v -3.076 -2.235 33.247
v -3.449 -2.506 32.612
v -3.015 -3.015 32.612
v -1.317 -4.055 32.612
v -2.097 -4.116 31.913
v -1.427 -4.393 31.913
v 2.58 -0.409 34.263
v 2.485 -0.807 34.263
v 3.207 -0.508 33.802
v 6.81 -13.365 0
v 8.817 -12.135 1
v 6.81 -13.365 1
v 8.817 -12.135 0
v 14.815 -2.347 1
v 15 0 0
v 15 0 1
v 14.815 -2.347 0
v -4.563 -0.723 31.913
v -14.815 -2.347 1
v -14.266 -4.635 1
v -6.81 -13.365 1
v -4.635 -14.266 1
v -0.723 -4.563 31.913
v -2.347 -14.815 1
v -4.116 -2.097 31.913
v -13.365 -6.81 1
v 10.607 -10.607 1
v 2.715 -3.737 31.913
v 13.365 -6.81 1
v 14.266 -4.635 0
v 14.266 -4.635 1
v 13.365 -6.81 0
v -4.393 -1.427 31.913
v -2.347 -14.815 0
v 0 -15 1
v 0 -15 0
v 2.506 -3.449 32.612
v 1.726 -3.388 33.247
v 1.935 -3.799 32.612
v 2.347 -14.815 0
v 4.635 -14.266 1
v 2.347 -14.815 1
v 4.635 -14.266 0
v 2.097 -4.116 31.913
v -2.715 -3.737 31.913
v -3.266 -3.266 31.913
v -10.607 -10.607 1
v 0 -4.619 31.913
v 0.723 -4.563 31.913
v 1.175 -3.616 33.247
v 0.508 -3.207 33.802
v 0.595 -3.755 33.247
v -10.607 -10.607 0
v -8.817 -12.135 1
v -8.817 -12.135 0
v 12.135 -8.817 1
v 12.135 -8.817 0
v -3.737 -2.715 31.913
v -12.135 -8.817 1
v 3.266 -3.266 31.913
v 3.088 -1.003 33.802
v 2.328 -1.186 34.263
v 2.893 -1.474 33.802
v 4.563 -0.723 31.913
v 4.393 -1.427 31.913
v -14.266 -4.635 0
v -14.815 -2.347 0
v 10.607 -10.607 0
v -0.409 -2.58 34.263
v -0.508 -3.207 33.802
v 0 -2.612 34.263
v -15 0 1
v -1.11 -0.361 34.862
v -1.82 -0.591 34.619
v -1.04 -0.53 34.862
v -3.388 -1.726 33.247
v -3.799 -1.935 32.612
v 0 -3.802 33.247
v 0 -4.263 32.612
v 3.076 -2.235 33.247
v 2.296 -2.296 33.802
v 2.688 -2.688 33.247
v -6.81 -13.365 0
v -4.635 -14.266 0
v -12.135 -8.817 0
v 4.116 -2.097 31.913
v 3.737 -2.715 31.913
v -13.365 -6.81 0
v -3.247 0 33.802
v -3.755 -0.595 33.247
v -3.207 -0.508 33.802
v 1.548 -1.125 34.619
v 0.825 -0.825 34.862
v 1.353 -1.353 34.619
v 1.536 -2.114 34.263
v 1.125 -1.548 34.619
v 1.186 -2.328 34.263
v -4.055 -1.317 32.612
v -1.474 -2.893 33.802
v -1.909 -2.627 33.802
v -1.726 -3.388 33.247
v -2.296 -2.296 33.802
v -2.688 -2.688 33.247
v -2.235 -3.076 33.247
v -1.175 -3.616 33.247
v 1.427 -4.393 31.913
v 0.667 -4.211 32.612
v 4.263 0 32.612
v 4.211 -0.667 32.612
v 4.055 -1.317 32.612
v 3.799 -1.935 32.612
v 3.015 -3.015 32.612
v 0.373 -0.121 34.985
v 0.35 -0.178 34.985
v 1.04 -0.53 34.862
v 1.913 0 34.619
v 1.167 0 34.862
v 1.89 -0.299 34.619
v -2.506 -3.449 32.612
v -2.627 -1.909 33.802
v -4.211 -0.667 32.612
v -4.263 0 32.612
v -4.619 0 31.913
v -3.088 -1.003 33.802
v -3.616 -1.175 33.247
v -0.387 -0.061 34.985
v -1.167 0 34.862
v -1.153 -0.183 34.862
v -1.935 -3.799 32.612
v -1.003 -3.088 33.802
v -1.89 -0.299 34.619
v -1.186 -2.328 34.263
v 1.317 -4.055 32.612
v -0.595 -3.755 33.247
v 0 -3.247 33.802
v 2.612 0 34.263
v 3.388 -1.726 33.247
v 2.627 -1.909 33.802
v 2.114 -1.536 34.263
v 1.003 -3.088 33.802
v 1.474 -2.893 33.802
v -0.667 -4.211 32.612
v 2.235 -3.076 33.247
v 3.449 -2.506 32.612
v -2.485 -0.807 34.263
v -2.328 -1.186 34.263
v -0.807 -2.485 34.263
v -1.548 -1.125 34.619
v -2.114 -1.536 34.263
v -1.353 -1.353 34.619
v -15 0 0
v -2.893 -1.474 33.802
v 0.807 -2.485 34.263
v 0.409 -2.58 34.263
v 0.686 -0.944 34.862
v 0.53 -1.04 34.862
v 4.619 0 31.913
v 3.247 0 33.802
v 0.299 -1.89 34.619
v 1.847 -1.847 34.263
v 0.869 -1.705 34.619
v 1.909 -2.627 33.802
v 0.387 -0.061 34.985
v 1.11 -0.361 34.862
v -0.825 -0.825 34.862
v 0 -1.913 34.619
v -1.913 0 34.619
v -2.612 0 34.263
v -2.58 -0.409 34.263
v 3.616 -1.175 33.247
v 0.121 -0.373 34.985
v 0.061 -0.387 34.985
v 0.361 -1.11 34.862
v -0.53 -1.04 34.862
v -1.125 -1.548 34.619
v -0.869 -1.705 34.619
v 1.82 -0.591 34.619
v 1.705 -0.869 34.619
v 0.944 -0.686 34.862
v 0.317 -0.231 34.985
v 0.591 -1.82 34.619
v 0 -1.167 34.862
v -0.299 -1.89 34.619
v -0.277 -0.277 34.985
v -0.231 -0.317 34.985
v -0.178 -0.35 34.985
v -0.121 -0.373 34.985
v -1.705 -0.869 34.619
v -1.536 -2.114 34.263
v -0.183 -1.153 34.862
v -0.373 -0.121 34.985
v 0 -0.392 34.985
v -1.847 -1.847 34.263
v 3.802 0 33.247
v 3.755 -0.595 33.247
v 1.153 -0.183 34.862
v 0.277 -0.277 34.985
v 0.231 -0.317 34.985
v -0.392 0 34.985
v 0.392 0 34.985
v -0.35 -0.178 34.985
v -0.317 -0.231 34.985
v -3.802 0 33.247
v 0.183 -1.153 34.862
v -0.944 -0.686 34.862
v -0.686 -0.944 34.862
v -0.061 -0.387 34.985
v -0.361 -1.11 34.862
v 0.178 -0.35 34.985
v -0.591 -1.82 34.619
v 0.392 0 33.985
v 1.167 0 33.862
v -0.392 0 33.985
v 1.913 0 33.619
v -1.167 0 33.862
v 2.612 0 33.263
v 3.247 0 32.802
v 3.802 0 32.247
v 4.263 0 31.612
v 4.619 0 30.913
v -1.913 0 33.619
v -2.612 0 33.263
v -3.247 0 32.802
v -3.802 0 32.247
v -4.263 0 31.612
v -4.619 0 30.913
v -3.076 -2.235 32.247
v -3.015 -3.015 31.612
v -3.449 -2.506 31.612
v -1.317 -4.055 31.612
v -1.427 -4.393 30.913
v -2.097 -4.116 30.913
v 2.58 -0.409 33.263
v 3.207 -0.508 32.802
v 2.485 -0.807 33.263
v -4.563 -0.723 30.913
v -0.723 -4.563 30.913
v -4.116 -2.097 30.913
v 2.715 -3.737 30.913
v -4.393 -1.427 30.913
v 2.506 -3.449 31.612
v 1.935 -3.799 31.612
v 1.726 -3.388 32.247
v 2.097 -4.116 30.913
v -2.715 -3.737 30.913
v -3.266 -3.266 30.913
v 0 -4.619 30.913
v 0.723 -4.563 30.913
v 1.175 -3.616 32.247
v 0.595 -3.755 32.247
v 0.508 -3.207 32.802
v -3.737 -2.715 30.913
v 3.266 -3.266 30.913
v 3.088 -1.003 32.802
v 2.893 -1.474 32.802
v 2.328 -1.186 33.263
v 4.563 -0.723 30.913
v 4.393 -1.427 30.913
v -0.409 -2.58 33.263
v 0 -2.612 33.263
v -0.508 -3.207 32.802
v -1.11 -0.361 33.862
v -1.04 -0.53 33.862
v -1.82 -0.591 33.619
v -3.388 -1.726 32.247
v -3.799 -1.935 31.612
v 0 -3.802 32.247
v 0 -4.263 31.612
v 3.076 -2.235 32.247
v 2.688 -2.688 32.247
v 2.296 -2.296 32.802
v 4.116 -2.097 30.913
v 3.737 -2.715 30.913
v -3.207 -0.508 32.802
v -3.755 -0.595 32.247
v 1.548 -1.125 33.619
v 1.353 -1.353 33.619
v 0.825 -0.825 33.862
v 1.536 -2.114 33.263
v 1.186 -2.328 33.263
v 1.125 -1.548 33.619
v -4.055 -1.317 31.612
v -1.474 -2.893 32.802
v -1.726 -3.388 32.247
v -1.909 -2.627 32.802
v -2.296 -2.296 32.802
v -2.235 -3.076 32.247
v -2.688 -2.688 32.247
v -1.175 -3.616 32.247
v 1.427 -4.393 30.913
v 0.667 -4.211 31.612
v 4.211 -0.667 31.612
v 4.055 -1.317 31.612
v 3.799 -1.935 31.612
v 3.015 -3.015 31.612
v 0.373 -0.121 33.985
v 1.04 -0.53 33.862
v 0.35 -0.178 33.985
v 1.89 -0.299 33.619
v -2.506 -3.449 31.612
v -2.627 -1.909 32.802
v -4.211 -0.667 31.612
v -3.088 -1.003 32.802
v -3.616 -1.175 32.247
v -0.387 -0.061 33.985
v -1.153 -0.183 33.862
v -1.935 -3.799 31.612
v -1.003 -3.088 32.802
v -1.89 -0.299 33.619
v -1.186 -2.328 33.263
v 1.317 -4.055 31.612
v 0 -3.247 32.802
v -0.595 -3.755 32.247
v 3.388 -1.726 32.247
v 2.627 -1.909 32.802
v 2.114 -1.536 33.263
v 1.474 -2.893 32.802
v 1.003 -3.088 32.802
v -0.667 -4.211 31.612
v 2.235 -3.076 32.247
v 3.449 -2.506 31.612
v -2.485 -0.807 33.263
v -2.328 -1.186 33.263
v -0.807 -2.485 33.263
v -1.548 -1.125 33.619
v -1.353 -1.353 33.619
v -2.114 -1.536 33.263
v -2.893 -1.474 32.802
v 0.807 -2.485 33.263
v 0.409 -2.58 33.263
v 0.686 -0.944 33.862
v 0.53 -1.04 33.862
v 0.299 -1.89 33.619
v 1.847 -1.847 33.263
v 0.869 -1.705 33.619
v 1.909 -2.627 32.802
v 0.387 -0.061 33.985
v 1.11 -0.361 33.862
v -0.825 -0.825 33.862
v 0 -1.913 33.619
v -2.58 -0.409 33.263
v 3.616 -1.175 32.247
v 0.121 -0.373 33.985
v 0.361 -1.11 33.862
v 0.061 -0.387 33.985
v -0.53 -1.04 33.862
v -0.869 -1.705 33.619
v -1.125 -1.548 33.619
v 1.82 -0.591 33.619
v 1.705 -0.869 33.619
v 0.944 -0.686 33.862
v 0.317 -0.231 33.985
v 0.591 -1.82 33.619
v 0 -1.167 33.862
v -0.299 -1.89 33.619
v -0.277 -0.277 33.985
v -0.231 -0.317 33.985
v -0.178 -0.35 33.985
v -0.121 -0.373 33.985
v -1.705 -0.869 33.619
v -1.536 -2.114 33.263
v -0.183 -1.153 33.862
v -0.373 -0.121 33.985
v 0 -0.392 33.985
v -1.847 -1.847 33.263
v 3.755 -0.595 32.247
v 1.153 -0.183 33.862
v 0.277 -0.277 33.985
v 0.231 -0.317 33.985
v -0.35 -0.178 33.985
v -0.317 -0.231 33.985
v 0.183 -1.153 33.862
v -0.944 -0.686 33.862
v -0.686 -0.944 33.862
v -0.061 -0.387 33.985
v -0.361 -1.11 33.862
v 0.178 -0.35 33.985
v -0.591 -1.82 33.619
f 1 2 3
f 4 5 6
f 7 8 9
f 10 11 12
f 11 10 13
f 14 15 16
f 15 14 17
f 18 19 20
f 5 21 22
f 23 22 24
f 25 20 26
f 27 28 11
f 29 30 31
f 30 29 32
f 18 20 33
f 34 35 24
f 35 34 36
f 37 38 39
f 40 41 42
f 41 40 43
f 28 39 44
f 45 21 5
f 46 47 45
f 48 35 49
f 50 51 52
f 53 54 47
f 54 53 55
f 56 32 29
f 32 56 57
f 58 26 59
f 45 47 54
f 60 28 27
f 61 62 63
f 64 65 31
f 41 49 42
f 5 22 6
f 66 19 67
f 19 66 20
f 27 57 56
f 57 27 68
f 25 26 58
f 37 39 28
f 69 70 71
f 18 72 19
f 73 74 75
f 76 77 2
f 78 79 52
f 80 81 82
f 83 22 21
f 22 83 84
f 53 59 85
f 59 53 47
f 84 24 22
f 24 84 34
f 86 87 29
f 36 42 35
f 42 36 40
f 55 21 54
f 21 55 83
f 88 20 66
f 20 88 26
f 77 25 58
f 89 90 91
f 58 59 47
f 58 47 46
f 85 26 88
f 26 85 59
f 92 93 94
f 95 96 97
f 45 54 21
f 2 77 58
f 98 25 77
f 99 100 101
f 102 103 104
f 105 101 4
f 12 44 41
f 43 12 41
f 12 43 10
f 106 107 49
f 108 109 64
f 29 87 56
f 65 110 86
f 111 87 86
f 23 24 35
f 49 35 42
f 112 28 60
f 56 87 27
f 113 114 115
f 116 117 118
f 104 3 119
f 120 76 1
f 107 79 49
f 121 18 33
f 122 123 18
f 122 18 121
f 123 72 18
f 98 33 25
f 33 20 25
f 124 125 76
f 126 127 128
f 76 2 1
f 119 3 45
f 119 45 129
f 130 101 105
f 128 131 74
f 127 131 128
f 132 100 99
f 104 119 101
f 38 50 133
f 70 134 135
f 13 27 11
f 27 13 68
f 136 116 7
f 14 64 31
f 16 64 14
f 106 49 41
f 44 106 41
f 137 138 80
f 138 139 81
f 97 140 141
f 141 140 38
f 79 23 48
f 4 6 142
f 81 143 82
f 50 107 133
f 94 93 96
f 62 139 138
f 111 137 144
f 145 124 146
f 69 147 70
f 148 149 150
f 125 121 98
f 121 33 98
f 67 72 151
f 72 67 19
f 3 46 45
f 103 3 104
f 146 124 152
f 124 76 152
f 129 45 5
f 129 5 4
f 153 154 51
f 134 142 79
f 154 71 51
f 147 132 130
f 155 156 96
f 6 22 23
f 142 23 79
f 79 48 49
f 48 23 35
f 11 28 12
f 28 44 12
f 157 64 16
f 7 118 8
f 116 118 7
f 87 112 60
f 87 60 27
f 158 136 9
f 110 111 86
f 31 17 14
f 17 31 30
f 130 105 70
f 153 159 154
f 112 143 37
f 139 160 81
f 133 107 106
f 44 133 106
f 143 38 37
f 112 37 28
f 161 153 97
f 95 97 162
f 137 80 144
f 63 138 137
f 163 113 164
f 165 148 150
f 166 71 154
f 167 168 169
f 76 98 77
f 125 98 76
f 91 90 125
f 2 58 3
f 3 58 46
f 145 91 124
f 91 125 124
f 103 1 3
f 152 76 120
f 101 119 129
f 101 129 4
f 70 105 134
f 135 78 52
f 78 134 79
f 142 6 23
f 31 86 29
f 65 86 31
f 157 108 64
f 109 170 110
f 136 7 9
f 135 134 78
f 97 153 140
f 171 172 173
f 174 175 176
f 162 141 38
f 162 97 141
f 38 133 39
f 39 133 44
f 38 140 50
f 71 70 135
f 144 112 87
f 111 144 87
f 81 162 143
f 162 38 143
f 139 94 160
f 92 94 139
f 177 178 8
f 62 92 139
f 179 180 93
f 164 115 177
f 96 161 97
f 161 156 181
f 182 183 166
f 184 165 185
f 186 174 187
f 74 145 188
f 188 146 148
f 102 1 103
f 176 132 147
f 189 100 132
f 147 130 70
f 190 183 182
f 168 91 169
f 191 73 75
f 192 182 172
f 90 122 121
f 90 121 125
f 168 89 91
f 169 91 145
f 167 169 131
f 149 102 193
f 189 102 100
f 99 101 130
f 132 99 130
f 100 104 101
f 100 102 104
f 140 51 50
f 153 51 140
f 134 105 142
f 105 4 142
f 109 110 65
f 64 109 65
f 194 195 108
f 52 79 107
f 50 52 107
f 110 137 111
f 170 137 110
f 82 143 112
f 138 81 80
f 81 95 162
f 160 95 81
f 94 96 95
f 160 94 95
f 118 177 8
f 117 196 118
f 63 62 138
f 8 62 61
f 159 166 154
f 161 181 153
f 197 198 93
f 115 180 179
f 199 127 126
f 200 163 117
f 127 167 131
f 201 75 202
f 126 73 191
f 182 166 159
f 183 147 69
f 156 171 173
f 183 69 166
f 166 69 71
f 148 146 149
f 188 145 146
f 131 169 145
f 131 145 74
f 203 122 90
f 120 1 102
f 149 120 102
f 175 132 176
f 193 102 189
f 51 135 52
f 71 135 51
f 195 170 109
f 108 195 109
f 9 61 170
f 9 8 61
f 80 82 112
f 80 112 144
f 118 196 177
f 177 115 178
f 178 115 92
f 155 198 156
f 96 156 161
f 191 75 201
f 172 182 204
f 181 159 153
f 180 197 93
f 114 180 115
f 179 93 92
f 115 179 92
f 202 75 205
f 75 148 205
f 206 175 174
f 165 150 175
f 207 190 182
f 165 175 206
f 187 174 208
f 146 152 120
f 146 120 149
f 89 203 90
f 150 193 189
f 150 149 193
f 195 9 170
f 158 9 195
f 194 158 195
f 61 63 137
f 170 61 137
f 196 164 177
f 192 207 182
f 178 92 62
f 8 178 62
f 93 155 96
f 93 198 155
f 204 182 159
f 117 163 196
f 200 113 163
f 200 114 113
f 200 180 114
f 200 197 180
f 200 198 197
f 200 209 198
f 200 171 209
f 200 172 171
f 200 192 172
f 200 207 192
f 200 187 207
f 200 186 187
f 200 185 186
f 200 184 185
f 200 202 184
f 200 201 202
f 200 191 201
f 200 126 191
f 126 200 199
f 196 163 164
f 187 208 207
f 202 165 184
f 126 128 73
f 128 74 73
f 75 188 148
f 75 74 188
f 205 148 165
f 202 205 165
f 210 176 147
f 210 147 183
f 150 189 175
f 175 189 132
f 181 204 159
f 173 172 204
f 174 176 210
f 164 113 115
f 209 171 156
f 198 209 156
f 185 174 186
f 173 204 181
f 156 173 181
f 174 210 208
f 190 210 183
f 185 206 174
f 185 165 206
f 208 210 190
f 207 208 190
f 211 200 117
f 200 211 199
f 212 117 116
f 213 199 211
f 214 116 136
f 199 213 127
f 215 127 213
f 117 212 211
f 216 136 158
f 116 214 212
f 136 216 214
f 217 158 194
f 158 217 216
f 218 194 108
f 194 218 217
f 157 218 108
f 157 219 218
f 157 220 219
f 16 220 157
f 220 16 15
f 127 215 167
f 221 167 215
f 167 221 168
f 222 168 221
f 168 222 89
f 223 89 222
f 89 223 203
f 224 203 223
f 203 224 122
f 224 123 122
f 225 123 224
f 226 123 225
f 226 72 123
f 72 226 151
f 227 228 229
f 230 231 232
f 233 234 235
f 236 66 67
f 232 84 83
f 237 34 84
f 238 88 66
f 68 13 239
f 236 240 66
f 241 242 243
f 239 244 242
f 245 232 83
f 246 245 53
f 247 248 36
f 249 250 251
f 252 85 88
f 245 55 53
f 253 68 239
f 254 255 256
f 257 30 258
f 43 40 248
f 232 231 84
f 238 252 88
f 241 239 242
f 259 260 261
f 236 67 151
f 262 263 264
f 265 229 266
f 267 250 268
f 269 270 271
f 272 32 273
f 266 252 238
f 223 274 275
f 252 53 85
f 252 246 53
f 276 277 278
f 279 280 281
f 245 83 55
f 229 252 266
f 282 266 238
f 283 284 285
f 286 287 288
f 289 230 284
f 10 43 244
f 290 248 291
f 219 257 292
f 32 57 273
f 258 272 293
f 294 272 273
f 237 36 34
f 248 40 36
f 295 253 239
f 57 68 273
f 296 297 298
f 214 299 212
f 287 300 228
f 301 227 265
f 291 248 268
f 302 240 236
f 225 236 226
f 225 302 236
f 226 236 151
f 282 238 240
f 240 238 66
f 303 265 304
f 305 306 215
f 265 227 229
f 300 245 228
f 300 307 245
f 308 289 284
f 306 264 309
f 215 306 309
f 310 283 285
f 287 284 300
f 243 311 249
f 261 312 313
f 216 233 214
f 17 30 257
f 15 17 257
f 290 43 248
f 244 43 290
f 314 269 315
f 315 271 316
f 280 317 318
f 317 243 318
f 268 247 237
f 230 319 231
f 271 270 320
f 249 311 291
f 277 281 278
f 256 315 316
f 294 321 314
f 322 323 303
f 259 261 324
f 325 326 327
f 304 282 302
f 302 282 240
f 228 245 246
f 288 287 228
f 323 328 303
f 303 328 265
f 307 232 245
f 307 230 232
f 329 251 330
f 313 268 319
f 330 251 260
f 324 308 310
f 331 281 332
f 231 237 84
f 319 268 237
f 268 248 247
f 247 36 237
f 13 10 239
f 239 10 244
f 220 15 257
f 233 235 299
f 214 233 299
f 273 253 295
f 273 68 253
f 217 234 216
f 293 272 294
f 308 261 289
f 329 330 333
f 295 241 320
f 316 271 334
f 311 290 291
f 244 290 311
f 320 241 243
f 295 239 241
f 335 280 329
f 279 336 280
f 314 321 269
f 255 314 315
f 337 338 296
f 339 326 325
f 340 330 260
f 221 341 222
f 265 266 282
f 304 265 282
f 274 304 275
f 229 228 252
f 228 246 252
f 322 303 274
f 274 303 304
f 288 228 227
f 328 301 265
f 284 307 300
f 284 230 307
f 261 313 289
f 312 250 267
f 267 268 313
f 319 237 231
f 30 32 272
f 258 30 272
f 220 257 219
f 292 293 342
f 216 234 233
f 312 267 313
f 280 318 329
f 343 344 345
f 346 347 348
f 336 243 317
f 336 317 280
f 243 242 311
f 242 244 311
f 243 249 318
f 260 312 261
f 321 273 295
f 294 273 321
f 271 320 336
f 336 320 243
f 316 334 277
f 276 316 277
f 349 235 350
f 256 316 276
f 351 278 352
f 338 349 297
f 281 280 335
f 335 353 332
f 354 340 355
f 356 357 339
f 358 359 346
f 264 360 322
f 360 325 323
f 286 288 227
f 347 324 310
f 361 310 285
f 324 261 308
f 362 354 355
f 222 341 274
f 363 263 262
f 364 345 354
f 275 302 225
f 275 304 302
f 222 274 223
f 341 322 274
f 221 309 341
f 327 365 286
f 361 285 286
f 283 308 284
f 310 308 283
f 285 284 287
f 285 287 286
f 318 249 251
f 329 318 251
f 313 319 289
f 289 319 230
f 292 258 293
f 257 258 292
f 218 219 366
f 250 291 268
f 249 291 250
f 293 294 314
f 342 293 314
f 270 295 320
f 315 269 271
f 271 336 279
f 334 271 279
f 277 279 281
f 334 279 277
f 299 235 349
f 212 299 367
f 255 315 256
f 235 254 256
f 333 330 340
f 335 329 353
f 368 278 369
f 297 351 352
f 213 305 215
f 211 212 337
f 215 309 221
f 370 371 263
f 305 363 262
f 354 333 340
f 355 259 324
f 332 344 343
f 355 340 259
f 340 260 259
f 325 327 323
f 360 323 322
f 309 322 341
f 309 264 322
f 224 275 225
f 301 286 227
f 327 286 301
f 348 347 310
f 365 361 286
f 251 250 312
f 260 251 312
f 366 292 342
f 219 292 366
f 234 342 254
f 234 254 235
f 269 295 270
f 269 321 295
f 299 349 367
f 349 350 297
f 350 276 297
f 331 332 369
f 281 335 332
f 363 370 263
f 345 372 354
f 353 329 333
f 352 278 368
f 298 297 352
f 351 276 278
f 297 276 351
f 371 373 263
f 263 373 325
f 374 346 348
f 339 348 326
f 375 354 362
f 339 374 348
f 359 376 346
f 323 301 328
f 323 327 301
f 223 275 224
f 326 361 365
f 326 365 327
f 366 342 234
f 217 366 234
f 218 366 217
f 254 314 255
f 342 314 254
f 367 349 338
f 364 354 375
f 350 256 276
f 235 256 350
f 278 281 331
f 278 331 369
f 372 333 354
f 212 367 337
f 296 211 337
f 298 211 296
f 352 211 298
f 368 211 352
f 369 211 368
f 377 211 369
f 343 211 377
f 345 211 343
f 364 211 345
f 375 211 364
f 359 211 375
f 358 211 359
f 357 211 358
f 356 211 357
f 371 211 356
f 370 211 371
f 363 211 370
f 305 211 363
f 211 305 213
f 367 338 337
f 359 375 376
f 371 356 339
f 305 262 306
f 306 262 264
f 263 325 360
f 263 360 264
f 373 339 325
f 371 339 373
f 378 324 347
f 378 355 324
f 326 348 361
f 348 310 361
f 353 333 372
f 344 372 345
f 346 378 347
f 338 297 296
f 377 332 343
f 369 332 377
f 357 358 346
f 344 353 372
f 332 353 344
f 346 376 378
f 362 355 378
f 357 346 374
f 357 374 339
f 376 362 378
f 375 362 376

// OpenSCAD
$fn=40;

module z() {
    difference() {
        hull() {
            cylinder(1,d=30);
            translate([0,0,30]) sphere(d=10);
        }
        translate([-20,0,0]) #cube([40,40,50]);
    }
}

module a1() {
    difference() {
        z();
        translate([0,0,-2]) z();
    }
}

module a2() {
    difference() {
        z();
        translate([0,0,-1]) z();
    }
}

a2();
